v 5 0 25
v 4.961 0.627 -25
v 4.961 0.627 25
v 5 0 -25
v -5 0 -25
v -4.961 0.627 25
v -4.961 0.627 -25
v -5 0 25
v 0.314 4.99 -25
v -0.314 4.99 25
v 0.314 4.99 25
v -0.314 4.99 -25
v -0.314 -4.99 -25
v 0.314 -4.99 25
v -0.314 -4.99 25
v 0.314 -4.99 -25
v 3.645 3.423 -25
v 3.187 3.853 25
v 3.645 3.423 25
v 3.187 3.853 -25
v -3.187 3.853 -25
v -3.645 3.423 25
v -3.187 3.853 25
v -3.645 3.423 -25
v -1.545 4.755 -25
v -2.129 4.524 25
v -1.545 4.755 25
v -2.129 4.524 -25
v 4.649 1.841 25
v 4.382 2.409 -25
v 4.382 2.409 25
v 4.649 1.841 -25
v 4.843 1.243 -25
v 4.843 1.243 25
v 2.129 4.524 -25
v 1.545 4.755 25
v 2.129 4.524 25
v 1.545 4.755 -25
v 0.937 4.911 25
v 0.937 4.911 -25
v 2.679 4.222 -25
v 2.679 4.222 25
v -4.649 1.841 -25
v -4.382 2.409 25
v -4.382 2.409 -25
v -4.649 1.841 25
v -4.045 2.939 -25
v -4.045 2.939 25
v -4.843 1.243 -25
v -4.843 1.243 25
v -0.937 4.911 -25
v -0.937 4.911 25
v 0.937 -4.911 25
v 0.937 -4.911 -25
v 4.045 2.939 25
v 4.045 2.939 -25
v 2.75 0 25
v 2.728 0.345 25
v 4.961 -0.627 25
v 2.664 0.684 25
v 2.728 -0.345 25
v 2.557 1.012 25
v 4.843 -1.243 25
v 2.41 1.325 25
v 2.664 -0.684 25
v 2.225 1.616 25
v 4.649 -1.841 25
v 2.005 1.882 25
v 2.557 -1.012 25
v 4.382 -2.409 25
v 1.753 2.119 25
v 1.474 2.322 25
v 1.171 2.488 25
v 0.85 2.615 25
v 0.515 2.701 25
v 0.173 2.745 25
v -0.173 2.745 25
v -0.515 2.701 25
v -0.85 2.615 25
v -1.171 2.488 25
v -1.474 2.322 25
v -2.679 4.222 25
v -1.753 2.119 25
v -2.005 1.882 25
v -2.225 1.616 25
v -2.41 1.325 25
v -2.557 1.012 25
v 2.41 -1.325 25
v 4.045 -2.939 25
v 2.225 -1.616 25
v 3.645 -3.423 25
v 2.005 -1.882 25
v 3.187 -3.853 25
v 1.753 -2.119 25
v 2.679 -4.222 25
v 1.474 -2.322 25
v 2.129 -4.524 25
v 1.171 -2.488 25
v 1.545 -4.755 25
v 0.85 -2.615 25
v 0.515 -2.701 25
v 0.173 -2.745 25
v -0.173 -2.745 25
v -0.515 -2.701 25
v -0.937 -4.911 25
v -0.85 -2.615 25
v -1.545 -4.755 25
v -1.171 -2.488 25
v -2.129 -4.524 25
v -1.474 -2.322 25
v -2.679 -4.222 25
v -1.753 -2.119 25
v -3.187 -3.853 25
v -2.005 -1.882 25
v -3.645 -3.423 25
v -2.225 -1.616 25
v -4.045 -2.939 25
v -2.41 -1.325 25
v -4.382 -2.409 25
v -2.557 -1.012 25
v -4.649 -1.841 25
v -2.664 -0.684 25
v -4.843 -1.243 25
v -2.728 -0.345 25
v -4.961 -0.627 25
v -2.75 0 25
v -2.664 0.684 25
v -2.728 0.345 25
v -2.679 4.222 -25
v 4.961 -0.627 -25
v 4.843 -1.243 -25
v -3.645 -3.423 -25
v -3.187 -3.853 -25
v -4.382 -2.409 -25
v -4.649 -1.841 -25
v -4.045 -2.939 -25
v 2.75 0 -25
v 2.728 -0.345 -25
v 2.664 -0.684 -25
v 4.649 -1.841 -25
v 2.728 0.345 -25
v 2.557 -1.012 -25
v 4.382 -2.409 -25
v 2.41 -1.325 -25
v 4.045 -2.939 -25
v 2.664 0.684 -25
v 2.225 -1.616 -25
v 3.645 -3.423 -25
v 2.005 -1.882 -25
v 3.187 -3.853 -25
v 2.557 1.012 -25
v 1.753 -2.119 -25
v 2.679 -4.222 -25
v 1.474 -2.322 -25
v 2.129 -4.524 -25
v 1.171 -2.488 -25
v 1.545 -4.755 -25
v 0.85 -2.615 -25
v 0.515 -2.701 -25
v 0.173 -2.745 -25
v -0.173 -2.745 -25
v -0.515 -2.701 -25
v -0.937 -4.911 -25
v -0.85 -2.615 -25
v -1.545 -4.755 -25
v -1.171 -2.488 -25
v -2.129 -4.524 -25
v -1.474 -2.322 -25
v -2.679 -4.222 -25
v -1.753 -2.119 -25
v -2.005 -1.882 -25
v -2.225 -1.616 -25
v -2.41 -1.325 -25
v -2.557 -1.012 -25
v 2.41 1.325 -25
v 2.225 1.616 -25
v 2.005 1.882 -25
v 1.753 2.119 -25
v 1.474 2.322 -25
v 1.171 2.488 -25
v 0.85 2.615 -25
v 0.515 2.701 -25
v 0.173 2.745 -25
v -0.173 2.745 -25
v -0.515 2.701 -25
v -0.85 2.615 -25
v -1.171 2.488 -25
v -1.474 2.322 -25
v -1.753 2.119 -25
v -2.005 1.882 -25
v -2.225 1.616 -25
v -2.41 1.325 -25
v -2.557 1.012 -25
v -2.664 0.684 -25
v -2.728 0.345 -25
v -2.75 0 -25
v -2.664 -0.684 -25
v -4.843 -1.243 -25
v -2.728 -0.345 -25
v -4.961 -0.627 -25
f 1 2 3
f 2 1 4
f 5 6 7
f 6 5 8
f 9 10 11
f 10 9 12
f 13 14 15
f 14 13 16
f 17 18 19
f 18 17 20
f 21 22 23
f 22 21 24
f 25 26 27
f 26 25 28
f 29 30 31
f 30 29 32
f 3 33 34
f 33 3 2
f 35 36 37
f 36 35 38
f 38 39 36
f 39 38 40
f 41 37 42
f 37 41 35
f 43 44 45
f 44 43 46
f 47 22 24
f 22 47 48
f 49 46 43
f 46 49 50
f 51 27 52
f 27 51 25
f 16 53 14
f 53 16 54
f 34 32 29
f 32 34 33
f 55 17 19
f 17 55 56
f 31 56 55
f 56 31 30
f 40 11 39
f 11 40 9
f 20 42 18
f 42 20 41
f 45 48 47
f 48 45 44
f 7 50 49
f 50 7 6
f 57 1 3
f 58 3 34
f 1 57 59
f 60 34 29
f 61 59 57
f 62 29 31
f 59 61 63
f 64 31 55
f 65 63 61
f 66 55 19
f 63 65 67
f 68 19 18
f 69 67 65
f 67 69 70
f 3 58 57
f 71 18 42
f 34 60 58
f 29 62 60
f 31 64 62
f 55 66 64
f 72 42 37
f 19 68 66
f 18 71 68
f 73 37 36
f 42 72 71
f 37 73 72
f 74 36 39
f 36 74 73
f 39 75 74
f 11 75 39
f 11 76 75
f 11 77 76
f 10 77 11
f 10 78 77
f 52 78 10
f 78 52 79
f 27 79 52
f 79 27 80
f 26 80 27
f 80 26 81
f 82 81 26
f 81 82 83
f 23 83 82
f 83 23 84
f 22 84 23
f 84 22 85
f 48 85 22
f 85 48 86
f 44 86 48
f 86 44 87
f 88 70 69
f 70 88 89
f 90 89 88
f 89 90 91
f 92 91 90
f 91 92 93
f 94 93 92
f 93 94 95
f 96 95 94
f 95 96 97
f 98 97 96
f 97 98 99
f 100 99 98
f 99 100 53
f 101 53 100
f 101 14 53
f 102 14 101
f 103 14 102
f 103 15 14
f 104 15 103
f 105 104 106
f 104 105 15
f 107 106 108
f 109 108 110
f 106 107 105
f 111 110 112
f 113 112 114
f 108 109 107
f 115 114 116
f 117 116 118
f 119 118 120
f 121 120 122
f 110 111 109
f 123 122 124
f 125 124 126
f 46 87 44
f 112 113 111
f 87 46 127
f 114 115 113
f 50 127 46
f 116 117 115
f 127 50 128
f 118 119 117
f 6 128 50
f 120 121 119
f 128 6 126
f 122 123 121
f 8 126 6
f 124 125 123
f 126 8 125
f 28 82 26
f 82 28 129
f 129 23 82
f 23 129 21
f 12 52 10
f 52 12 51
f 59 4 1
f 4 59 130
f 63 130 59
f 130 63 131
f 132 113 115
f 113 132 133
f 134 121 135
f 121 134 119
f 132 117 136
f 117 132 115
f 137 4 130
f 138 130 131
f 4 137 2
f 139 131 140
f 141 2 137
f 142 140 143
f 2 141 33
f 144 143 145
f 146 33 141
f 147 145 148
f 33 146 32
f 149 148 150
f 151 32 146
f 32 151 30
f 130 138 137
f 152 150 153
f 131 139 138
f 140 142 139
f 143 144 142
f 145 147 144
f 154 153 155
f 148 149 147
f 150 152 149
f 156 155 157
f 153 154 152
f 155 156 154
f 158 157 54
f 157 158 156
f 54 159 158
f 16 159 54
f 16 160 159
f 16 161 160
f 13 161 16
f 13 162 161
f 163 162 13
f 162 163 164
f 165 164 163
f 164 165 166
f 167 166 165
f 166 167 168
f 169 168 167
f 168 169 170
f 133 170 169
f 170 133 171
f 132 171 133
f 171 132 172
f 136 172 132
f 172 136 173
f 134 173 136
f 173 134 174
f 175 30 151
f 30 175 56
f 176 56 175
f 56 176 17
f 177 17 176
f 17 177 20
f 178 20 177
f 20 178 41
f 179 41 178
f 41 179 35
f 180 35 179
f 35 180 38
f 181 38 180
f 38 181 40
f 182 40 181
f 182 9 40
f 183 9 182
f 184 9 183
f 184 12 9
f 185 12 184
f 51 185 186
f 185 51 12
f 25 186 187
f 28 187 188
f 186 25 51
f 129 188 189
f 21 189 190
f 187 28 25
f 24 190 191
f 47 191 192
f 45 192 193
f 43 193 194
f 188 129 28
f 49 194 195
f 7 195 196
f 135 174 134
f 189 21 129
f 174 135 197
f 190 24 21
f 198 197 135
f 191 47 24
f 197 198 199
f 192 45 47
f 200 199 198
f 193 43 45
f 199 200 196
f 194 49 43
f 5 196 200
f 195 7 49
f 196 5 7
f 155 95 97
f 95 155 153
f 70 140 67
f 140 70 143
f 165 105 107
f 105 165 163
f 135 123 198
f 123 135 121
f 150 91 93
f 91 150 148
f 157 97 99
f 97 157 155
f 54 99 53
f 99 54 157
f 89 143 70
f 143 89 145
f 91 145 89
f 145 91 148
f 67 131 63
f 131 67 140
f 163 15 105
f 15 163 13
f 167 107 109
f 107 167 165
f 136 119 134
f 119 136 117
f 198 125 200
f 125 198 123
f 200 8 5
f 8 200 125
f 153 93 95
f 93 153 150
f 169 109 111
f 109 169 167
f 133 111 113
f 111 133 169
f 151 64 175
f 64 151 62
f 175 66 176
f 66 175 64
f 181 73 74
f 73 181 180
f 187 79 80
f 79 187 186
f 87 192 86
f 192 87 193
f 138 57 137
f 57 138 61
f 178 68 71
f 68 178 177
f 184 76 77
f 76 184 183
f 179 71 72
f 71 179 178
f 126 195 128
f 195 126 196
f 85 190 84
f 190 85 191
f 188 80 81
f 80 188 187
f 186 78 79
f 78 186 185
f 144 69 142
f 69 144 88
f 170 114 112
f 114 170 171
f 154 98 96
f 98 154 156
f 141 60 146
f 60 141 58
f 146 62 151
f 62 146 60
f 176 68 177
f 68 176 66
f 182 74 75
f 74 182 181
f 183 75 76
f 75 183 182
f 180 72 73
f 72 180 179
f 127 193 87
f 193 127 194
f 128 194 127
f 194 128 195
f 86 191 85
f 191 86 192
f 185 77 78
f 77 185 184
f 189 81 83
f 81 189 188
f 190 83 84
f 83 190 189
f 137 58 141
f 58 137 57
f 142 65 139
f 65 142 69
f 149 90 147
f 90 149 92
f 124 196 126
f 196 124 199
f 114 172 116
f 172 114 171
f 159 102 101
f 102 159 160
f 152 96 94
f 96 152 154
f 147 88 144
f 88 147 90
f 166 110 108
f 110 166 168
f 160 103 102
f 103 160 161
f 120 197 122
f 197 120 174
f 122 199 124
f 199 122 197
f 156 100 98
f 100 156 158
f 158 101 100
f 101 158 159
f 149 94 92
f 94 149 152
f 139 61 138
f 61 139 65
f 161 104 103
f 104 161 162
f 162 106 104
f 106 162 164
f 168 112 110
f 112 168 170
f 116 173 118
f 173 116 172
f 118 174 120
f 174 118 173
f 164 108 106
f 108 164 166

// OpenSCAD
$fn = 50;


difference() {
	union() {
		translate(v = [0, 0, -25.0000000000]) {
			cylinder(h = 50, r = 5.0000000000);
		}
	}
	union() {
		translate(v = [0, 0, -100.0000000000]) {
			cylinder(h = 200, r = 2.7500000000);
		}
	}
}
